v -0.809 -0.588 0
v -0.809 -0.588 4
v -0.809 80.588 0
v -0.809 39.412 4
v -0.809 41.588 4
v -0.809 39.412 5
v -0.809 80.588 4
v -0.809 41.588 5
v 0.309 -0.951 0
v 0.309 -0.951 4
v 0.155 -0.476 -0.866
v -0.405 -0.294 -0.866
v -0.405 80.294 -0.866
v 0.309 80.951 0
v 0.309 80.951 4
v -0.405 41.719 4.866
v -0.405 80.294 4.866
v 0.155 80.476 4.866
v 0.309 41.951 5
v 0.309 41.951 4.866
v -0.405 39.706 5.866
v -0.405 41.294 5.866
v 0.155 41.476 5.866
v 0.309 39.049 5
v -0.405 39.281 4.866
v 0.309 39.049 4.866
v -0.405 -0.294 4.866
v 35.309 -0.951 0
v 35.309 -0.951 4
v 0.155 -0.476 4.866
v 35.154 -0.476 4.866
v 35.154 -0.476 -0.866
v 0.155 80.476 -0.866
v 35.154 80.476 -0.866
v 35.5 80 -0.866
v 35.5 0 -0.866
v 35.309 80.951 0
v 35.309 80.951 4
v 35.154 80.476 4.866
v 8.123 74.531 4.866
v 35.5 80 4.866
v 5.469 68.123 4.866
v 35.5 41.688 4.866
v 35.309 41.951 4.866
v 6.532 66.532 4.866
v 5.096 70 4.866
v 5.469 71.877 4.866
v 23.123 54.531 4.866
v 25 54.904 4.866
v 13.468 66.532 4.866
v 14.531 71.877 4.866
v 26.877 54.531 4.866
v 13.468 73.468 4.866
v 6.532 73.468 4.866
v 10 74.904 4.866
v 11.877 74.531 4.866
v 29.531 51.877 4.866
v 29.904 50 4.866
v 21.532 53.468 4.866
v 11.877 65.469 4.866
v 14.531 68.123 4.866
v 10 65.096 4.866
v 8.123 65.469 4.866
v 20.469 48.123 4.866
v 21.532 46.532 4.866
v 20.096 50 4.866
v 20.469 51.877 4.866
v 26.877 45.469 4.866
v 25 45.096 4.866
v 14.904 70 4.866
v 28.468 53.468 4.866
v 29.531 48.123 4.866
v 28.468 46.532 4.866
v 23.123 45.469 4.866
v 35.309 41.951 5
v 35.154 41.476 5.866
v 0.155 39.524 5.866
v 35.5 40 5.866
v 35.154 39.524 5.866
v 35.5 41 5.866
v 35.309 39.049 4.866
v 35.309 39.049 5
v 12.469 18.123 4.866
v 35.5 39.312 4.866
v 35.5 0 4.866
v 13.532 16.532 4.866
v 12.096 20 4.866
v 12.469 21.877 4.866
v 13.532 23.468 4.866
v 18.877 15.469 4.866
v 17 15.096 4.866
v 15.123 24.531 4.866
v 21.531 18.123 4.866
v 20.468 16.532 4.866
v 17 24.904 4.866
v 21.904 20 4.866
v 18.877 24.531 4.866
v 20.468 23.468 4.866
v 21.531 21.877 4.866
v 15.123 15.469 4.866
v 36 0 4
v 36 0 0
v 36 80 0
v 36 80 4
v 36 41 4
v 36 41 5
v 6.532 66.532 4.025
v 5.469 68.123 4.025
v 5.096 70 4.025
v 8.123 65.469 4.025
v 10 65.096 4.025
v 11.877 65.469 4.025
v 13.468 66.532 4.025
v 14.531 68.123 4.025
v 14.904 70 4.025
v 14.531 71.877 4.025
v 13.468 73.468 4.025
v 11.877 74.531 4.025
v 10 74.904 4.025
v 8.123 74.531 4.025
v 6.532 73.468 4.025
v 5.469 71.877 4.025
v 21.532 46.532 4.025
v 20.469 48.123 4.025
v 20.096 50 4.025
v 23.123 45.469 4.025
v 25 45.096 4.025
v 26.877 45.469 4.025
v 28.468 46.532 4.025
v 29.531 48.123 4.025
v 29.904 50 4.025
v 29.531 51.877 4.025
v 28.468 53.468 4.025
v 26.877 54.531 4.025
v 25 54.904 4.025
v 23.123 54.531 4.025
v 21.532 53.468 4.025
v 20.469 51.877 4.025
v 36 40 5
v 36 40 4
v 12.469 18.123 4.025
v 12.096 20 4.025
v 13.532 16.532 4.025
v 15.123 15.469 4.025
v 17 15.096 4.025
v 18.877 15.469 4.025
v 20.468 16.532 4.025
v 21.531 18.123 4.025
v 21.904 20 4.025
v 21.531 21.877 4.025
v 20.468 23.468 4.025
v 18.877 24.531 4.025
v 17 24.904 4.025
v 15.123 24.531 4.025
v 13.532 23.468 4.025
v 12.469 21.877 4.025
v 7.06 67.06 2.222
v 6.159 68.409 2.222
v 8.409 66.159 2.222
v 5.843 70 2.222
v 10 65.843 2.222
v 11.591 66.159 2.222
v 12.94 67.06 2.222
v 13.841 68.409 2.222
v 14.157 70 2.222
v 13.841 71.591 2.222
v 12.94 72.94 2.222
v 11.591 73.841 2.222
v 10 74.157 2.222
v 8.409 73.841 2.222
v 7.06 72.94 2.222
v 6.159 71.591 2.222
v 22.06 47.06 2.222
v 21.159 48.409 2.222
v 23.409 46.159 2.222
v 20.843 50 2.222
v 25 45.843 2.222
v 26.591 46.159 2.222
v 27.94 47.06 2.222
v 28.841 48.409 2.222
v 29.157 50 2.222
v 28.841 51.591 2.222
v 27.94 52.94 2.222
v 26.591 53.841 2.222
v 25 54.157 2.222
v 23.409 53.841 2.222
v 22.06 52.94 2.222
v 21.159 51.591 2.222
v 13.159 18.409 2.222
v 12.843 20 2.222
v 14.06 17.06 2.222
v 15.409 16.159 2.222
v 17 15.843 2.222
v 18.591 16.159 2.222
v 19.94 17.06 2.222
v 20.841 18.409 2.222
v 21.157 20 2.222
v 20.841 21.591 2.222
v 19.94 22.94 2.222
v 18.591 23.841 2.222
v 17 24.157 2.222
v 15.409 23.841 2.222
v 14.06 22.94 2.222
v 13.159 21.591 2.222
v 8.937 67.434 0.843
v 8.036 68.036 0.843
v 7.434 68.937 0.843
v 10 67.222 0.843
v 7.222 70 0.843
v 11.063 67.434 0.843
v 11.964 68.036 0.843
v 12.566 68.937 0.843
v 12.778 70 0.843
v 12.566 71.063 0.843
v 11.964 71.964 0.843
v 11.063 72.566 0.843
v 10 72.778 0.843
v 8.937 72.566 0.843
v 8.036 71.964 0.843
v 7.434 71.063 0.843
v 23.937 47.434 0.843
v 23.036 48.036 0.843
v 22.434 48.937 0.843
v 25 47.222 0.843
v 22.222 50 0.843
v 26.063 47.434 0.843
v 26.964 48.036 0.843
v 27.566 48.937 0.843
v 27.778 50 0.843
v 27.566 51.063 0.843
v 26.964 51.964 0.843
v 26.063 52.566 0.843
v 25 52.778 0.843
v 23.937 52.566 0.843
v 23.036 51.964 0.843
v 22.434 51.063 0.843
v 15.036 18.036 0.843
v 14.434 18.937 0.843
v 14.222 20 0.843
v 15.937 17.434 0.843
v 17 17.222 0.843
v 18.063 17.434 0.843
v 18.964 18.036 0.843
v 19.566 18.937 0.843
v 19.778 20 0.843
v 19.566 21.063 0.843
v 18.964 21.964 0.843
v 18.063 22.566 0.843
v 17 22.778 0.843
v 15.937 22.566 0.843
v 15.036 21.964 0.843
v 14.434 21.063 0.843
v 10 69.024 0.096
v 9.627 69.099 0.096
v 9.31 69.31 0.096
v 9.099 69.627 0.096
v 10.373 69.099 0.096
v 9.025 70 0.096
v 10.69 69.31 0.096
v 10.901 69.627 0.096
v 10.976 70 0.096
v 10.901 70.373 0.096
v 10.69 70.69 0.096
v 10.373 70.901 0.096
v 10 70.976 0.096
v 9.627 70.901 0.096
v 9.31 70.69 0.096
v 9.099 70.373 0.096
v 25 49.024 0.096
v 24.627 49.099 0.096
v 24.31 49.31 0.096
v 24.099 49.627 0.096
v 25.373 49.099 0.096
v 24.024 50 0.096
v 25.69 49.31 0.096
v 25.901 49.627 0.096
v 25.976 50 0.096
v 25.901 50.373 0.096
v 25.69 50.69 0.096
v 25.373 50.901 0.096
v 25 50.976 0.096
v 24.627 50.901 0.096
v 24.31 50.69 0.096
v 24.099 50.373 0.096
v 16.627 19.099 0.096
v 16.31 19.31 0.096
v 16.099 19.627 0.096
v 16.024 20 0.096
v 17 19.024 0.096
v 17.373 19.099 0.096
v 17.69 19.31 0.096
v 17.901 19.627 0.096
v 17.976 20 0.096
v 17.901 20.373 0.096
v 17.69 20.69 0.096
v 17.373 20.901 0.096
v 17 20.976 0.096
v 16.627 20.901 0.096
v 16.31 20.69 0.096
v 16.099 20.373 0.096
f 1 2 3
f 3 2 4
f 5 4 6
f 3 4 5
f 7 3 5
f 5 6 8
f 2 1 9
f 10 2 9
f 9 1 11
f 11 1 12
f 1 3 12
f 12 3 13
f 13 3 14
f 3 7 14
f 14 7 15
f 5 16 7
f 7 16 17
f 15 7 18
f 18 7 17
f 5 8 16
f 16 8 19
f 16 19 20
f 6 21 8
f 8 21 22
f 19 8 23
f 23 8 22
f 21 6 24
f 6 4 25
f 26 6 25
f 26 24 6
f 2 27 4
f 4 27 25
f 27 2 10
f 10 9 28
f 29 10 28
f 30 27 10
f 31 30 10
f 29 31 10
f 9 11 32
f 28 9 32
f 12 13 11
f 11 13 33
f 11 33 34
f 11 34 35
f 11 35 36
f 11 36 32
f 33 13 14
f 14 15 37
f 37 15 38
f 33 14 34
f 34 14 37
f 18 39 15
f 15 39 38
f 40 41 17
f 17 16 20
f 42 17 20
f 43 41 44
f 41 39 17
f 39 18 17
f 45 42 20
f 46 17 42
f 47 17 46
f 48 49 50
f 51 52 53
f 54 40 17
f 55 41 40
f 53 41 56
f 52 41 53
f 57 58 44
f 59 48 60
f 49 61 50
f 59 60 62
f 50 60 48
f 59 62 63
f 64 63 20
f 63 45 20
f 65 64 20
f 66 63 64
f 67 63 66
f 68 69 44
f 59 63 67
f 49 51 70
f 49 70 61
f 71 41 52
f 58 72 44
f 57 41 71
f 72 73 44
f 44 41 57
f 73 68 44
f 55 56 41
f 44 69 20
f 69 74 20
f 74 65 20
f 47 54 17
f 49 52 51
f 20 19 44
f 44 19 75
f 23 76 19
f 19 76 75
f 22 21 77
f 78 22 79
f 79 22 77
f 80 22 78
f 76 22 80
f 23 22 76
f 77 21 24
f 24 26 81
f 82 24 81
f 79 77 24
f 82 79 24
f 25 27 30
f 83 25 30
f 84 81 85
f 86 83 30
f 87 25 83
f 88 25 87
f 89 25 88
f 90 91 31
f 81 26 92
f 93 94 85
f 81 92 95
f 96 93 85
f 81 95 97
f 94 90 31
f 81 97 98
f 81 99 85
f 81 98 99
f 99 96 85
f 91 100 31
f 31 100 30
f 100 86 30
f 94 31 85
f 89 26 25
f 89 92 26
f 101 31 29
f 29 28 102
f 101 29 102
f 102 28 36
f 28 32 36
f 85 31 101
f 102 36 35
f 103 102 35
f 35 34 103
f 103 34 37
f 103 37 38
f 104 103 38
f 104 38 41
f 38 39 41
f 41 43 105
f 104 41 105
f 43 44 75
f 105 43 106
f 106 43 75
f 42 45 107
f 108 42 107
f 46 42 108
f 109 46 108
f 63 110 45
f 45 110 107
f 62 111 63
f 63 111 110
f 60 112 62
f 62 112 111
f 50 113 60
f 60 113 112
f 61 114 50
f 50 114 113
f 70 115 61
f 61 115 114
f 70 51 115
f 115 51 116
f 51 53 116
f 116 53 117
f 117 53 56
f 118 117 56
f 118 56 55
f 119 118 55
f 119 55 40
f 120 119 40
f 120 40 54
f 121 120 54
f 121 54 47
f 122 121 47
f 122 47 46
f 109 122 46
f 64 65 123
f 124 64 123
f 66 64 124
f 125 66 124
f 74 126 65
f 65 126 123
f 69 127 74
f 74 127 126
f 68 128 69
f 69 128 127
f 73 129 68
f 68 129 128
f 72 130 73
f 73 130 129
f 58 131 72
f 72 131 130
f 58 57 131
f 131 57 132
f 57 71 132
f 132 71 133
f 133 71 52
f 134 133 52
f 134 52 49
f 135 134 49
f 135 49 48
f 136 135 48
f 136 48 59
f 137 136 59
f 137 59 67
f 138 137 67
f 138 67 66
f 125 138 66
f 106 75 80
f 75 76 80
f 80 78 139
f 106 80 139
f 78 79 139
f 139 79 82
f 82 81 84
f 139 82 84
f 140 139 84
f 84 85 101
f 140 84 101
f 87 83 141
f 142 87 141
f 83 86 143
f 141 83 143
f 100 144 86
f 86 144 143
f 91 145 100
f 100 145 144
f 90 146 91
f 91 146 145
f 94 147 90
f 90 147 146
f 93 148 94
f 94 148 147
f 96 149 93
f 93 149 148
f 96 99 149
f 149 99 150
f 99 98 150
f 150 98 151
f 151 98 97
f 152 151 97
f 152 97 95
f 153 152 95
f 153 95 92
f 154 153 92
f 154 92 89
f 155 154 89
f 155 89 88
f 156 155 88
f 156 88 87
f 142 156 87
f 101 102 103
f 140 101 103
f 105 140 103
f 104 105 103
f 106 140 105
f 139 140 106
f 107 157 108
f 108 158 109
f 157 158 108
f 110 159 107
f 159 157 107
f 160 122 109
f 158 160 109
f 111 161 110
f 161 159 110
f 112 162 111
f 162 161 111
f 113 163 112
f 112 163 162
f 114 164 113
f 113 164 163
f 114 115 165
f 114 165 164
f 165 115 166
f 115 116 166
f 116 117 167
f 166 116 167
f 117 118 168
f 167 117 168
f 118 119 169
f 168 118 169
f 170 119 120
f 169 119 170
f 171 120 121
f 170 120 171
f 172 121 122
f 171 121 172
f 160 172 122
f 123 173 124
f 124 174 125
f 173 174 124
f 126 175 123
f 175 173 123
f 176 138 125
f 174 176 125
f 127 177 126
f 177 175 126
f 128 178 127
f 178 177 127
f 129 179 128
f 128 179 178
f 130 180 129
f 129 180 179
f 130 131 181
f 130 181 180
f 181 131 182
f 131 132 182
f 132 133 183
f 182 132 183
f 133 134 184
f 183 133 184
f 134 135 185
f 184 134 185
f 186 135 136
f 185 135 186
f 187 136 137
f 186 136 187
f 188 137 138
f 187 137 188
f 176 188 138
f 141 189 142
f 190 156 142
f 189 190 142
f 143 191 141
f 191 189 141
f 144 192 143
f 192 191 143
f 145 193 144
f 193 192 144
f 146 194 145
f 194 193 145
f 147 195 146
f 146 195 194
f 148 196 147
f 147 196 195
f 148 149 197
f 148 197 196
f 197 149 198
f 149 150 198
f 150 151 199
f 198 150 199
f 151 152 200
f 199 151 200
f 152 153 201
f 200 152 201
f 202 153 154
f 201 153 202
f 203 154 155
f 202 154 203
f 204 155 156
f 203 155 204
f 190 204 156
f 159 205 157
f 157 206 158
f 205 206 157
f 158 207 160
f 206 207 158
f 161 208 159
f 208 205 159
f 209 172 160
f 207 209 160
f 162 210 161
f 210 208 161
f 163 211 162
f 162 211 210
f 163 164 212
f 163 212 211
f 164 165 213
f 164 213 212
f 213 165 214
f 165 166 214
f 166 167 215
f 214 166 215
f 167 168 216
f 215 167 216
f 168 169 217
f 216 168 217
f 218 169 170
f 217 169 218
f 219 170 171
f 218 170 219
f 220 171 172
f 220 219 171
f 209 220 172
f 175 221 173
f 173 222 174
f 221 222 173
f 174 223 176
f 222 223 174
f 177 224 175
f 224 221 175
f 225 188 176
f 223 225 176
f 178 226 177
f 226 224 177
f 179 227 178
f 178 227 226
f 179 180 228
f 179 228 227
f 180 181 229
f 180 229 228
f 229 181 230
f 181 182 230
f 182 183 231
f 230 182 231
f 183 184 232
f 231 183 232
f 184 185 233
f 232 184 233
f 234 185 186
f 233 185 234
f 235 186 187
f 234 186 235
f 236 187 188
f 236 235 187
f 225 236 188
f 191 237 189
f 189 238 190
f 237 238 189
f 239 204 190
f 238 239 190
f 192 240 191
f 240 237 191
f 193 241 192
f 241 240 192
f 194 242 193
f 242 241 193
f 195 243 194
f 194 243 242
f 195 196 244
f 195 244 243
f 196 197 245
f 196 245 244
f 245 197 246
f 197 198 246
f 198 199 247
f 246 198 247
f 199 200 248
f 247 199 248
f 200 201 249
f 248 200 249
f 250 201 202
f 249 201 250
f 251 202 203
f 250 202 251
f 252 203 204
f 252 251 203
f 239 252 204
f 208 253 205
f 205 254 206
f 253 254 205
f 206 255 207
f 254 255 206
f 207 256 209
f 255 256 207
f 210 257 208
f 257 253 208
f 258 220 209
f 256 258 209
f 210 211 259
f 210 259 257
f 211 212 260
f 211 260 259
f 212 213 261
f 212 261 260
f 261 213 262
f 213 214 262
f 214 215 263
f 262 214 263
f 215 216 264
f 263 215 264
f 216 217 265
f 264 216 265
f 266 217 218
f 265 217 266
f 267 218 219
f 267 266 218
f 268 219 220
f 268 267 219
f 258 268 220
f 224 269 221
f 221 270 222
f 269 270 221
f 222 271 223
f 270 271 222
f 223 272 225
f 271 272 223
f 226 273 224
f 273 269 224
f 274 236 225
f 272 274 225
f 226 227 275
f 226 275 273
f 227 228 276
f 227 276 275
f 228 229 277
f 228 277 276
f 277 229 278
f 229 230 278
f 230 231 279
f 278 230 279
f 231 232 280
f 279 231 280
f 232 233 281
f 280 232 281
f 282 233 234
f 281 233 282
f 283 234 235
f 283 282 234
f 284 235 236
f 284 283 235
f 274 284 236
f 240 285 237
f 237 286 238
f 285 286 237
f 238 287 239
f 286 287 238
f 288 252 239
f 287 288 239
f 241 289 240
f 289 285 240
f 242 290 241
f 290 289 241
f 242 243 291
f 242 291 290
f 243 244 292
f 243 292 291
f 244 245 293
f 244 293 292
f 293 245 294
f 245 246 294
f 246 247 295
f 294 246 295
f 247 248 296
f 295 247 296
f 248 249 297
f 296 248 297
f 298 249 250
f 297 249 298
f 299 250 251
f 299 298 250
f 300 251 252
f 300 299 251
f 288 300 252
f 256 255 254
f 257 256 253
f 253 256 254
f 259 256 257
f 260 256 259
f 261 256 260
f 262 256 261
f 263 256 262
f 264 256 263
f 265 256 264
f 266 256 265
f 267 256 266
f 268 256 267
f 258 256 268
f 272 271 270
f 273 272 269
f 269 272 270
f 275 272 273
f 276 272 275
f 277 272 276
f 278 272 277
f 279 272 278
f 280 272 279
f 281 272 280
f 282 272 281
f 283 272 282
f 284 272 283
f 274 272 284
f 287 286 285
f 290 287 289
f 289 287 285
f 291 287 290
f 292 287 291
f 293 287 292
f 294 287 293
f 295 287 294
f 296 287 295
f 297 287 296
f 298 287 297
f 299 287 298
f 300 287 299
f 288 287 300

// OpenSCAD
// Loguncov Maxim 13.12.13


//$fn=128;


translate([0,40,0])
minkowski()
{cube([35,1,5]);
sphere(1);
}

difference() {

//основа
minkowski()
{cube([35,80,4]);
sphere(1);
}

//отверстия
translate([17,20,5])sphere(5);

translate([10,70,5])sphere(5);
translate([25,50,5])sphere(5);




}
